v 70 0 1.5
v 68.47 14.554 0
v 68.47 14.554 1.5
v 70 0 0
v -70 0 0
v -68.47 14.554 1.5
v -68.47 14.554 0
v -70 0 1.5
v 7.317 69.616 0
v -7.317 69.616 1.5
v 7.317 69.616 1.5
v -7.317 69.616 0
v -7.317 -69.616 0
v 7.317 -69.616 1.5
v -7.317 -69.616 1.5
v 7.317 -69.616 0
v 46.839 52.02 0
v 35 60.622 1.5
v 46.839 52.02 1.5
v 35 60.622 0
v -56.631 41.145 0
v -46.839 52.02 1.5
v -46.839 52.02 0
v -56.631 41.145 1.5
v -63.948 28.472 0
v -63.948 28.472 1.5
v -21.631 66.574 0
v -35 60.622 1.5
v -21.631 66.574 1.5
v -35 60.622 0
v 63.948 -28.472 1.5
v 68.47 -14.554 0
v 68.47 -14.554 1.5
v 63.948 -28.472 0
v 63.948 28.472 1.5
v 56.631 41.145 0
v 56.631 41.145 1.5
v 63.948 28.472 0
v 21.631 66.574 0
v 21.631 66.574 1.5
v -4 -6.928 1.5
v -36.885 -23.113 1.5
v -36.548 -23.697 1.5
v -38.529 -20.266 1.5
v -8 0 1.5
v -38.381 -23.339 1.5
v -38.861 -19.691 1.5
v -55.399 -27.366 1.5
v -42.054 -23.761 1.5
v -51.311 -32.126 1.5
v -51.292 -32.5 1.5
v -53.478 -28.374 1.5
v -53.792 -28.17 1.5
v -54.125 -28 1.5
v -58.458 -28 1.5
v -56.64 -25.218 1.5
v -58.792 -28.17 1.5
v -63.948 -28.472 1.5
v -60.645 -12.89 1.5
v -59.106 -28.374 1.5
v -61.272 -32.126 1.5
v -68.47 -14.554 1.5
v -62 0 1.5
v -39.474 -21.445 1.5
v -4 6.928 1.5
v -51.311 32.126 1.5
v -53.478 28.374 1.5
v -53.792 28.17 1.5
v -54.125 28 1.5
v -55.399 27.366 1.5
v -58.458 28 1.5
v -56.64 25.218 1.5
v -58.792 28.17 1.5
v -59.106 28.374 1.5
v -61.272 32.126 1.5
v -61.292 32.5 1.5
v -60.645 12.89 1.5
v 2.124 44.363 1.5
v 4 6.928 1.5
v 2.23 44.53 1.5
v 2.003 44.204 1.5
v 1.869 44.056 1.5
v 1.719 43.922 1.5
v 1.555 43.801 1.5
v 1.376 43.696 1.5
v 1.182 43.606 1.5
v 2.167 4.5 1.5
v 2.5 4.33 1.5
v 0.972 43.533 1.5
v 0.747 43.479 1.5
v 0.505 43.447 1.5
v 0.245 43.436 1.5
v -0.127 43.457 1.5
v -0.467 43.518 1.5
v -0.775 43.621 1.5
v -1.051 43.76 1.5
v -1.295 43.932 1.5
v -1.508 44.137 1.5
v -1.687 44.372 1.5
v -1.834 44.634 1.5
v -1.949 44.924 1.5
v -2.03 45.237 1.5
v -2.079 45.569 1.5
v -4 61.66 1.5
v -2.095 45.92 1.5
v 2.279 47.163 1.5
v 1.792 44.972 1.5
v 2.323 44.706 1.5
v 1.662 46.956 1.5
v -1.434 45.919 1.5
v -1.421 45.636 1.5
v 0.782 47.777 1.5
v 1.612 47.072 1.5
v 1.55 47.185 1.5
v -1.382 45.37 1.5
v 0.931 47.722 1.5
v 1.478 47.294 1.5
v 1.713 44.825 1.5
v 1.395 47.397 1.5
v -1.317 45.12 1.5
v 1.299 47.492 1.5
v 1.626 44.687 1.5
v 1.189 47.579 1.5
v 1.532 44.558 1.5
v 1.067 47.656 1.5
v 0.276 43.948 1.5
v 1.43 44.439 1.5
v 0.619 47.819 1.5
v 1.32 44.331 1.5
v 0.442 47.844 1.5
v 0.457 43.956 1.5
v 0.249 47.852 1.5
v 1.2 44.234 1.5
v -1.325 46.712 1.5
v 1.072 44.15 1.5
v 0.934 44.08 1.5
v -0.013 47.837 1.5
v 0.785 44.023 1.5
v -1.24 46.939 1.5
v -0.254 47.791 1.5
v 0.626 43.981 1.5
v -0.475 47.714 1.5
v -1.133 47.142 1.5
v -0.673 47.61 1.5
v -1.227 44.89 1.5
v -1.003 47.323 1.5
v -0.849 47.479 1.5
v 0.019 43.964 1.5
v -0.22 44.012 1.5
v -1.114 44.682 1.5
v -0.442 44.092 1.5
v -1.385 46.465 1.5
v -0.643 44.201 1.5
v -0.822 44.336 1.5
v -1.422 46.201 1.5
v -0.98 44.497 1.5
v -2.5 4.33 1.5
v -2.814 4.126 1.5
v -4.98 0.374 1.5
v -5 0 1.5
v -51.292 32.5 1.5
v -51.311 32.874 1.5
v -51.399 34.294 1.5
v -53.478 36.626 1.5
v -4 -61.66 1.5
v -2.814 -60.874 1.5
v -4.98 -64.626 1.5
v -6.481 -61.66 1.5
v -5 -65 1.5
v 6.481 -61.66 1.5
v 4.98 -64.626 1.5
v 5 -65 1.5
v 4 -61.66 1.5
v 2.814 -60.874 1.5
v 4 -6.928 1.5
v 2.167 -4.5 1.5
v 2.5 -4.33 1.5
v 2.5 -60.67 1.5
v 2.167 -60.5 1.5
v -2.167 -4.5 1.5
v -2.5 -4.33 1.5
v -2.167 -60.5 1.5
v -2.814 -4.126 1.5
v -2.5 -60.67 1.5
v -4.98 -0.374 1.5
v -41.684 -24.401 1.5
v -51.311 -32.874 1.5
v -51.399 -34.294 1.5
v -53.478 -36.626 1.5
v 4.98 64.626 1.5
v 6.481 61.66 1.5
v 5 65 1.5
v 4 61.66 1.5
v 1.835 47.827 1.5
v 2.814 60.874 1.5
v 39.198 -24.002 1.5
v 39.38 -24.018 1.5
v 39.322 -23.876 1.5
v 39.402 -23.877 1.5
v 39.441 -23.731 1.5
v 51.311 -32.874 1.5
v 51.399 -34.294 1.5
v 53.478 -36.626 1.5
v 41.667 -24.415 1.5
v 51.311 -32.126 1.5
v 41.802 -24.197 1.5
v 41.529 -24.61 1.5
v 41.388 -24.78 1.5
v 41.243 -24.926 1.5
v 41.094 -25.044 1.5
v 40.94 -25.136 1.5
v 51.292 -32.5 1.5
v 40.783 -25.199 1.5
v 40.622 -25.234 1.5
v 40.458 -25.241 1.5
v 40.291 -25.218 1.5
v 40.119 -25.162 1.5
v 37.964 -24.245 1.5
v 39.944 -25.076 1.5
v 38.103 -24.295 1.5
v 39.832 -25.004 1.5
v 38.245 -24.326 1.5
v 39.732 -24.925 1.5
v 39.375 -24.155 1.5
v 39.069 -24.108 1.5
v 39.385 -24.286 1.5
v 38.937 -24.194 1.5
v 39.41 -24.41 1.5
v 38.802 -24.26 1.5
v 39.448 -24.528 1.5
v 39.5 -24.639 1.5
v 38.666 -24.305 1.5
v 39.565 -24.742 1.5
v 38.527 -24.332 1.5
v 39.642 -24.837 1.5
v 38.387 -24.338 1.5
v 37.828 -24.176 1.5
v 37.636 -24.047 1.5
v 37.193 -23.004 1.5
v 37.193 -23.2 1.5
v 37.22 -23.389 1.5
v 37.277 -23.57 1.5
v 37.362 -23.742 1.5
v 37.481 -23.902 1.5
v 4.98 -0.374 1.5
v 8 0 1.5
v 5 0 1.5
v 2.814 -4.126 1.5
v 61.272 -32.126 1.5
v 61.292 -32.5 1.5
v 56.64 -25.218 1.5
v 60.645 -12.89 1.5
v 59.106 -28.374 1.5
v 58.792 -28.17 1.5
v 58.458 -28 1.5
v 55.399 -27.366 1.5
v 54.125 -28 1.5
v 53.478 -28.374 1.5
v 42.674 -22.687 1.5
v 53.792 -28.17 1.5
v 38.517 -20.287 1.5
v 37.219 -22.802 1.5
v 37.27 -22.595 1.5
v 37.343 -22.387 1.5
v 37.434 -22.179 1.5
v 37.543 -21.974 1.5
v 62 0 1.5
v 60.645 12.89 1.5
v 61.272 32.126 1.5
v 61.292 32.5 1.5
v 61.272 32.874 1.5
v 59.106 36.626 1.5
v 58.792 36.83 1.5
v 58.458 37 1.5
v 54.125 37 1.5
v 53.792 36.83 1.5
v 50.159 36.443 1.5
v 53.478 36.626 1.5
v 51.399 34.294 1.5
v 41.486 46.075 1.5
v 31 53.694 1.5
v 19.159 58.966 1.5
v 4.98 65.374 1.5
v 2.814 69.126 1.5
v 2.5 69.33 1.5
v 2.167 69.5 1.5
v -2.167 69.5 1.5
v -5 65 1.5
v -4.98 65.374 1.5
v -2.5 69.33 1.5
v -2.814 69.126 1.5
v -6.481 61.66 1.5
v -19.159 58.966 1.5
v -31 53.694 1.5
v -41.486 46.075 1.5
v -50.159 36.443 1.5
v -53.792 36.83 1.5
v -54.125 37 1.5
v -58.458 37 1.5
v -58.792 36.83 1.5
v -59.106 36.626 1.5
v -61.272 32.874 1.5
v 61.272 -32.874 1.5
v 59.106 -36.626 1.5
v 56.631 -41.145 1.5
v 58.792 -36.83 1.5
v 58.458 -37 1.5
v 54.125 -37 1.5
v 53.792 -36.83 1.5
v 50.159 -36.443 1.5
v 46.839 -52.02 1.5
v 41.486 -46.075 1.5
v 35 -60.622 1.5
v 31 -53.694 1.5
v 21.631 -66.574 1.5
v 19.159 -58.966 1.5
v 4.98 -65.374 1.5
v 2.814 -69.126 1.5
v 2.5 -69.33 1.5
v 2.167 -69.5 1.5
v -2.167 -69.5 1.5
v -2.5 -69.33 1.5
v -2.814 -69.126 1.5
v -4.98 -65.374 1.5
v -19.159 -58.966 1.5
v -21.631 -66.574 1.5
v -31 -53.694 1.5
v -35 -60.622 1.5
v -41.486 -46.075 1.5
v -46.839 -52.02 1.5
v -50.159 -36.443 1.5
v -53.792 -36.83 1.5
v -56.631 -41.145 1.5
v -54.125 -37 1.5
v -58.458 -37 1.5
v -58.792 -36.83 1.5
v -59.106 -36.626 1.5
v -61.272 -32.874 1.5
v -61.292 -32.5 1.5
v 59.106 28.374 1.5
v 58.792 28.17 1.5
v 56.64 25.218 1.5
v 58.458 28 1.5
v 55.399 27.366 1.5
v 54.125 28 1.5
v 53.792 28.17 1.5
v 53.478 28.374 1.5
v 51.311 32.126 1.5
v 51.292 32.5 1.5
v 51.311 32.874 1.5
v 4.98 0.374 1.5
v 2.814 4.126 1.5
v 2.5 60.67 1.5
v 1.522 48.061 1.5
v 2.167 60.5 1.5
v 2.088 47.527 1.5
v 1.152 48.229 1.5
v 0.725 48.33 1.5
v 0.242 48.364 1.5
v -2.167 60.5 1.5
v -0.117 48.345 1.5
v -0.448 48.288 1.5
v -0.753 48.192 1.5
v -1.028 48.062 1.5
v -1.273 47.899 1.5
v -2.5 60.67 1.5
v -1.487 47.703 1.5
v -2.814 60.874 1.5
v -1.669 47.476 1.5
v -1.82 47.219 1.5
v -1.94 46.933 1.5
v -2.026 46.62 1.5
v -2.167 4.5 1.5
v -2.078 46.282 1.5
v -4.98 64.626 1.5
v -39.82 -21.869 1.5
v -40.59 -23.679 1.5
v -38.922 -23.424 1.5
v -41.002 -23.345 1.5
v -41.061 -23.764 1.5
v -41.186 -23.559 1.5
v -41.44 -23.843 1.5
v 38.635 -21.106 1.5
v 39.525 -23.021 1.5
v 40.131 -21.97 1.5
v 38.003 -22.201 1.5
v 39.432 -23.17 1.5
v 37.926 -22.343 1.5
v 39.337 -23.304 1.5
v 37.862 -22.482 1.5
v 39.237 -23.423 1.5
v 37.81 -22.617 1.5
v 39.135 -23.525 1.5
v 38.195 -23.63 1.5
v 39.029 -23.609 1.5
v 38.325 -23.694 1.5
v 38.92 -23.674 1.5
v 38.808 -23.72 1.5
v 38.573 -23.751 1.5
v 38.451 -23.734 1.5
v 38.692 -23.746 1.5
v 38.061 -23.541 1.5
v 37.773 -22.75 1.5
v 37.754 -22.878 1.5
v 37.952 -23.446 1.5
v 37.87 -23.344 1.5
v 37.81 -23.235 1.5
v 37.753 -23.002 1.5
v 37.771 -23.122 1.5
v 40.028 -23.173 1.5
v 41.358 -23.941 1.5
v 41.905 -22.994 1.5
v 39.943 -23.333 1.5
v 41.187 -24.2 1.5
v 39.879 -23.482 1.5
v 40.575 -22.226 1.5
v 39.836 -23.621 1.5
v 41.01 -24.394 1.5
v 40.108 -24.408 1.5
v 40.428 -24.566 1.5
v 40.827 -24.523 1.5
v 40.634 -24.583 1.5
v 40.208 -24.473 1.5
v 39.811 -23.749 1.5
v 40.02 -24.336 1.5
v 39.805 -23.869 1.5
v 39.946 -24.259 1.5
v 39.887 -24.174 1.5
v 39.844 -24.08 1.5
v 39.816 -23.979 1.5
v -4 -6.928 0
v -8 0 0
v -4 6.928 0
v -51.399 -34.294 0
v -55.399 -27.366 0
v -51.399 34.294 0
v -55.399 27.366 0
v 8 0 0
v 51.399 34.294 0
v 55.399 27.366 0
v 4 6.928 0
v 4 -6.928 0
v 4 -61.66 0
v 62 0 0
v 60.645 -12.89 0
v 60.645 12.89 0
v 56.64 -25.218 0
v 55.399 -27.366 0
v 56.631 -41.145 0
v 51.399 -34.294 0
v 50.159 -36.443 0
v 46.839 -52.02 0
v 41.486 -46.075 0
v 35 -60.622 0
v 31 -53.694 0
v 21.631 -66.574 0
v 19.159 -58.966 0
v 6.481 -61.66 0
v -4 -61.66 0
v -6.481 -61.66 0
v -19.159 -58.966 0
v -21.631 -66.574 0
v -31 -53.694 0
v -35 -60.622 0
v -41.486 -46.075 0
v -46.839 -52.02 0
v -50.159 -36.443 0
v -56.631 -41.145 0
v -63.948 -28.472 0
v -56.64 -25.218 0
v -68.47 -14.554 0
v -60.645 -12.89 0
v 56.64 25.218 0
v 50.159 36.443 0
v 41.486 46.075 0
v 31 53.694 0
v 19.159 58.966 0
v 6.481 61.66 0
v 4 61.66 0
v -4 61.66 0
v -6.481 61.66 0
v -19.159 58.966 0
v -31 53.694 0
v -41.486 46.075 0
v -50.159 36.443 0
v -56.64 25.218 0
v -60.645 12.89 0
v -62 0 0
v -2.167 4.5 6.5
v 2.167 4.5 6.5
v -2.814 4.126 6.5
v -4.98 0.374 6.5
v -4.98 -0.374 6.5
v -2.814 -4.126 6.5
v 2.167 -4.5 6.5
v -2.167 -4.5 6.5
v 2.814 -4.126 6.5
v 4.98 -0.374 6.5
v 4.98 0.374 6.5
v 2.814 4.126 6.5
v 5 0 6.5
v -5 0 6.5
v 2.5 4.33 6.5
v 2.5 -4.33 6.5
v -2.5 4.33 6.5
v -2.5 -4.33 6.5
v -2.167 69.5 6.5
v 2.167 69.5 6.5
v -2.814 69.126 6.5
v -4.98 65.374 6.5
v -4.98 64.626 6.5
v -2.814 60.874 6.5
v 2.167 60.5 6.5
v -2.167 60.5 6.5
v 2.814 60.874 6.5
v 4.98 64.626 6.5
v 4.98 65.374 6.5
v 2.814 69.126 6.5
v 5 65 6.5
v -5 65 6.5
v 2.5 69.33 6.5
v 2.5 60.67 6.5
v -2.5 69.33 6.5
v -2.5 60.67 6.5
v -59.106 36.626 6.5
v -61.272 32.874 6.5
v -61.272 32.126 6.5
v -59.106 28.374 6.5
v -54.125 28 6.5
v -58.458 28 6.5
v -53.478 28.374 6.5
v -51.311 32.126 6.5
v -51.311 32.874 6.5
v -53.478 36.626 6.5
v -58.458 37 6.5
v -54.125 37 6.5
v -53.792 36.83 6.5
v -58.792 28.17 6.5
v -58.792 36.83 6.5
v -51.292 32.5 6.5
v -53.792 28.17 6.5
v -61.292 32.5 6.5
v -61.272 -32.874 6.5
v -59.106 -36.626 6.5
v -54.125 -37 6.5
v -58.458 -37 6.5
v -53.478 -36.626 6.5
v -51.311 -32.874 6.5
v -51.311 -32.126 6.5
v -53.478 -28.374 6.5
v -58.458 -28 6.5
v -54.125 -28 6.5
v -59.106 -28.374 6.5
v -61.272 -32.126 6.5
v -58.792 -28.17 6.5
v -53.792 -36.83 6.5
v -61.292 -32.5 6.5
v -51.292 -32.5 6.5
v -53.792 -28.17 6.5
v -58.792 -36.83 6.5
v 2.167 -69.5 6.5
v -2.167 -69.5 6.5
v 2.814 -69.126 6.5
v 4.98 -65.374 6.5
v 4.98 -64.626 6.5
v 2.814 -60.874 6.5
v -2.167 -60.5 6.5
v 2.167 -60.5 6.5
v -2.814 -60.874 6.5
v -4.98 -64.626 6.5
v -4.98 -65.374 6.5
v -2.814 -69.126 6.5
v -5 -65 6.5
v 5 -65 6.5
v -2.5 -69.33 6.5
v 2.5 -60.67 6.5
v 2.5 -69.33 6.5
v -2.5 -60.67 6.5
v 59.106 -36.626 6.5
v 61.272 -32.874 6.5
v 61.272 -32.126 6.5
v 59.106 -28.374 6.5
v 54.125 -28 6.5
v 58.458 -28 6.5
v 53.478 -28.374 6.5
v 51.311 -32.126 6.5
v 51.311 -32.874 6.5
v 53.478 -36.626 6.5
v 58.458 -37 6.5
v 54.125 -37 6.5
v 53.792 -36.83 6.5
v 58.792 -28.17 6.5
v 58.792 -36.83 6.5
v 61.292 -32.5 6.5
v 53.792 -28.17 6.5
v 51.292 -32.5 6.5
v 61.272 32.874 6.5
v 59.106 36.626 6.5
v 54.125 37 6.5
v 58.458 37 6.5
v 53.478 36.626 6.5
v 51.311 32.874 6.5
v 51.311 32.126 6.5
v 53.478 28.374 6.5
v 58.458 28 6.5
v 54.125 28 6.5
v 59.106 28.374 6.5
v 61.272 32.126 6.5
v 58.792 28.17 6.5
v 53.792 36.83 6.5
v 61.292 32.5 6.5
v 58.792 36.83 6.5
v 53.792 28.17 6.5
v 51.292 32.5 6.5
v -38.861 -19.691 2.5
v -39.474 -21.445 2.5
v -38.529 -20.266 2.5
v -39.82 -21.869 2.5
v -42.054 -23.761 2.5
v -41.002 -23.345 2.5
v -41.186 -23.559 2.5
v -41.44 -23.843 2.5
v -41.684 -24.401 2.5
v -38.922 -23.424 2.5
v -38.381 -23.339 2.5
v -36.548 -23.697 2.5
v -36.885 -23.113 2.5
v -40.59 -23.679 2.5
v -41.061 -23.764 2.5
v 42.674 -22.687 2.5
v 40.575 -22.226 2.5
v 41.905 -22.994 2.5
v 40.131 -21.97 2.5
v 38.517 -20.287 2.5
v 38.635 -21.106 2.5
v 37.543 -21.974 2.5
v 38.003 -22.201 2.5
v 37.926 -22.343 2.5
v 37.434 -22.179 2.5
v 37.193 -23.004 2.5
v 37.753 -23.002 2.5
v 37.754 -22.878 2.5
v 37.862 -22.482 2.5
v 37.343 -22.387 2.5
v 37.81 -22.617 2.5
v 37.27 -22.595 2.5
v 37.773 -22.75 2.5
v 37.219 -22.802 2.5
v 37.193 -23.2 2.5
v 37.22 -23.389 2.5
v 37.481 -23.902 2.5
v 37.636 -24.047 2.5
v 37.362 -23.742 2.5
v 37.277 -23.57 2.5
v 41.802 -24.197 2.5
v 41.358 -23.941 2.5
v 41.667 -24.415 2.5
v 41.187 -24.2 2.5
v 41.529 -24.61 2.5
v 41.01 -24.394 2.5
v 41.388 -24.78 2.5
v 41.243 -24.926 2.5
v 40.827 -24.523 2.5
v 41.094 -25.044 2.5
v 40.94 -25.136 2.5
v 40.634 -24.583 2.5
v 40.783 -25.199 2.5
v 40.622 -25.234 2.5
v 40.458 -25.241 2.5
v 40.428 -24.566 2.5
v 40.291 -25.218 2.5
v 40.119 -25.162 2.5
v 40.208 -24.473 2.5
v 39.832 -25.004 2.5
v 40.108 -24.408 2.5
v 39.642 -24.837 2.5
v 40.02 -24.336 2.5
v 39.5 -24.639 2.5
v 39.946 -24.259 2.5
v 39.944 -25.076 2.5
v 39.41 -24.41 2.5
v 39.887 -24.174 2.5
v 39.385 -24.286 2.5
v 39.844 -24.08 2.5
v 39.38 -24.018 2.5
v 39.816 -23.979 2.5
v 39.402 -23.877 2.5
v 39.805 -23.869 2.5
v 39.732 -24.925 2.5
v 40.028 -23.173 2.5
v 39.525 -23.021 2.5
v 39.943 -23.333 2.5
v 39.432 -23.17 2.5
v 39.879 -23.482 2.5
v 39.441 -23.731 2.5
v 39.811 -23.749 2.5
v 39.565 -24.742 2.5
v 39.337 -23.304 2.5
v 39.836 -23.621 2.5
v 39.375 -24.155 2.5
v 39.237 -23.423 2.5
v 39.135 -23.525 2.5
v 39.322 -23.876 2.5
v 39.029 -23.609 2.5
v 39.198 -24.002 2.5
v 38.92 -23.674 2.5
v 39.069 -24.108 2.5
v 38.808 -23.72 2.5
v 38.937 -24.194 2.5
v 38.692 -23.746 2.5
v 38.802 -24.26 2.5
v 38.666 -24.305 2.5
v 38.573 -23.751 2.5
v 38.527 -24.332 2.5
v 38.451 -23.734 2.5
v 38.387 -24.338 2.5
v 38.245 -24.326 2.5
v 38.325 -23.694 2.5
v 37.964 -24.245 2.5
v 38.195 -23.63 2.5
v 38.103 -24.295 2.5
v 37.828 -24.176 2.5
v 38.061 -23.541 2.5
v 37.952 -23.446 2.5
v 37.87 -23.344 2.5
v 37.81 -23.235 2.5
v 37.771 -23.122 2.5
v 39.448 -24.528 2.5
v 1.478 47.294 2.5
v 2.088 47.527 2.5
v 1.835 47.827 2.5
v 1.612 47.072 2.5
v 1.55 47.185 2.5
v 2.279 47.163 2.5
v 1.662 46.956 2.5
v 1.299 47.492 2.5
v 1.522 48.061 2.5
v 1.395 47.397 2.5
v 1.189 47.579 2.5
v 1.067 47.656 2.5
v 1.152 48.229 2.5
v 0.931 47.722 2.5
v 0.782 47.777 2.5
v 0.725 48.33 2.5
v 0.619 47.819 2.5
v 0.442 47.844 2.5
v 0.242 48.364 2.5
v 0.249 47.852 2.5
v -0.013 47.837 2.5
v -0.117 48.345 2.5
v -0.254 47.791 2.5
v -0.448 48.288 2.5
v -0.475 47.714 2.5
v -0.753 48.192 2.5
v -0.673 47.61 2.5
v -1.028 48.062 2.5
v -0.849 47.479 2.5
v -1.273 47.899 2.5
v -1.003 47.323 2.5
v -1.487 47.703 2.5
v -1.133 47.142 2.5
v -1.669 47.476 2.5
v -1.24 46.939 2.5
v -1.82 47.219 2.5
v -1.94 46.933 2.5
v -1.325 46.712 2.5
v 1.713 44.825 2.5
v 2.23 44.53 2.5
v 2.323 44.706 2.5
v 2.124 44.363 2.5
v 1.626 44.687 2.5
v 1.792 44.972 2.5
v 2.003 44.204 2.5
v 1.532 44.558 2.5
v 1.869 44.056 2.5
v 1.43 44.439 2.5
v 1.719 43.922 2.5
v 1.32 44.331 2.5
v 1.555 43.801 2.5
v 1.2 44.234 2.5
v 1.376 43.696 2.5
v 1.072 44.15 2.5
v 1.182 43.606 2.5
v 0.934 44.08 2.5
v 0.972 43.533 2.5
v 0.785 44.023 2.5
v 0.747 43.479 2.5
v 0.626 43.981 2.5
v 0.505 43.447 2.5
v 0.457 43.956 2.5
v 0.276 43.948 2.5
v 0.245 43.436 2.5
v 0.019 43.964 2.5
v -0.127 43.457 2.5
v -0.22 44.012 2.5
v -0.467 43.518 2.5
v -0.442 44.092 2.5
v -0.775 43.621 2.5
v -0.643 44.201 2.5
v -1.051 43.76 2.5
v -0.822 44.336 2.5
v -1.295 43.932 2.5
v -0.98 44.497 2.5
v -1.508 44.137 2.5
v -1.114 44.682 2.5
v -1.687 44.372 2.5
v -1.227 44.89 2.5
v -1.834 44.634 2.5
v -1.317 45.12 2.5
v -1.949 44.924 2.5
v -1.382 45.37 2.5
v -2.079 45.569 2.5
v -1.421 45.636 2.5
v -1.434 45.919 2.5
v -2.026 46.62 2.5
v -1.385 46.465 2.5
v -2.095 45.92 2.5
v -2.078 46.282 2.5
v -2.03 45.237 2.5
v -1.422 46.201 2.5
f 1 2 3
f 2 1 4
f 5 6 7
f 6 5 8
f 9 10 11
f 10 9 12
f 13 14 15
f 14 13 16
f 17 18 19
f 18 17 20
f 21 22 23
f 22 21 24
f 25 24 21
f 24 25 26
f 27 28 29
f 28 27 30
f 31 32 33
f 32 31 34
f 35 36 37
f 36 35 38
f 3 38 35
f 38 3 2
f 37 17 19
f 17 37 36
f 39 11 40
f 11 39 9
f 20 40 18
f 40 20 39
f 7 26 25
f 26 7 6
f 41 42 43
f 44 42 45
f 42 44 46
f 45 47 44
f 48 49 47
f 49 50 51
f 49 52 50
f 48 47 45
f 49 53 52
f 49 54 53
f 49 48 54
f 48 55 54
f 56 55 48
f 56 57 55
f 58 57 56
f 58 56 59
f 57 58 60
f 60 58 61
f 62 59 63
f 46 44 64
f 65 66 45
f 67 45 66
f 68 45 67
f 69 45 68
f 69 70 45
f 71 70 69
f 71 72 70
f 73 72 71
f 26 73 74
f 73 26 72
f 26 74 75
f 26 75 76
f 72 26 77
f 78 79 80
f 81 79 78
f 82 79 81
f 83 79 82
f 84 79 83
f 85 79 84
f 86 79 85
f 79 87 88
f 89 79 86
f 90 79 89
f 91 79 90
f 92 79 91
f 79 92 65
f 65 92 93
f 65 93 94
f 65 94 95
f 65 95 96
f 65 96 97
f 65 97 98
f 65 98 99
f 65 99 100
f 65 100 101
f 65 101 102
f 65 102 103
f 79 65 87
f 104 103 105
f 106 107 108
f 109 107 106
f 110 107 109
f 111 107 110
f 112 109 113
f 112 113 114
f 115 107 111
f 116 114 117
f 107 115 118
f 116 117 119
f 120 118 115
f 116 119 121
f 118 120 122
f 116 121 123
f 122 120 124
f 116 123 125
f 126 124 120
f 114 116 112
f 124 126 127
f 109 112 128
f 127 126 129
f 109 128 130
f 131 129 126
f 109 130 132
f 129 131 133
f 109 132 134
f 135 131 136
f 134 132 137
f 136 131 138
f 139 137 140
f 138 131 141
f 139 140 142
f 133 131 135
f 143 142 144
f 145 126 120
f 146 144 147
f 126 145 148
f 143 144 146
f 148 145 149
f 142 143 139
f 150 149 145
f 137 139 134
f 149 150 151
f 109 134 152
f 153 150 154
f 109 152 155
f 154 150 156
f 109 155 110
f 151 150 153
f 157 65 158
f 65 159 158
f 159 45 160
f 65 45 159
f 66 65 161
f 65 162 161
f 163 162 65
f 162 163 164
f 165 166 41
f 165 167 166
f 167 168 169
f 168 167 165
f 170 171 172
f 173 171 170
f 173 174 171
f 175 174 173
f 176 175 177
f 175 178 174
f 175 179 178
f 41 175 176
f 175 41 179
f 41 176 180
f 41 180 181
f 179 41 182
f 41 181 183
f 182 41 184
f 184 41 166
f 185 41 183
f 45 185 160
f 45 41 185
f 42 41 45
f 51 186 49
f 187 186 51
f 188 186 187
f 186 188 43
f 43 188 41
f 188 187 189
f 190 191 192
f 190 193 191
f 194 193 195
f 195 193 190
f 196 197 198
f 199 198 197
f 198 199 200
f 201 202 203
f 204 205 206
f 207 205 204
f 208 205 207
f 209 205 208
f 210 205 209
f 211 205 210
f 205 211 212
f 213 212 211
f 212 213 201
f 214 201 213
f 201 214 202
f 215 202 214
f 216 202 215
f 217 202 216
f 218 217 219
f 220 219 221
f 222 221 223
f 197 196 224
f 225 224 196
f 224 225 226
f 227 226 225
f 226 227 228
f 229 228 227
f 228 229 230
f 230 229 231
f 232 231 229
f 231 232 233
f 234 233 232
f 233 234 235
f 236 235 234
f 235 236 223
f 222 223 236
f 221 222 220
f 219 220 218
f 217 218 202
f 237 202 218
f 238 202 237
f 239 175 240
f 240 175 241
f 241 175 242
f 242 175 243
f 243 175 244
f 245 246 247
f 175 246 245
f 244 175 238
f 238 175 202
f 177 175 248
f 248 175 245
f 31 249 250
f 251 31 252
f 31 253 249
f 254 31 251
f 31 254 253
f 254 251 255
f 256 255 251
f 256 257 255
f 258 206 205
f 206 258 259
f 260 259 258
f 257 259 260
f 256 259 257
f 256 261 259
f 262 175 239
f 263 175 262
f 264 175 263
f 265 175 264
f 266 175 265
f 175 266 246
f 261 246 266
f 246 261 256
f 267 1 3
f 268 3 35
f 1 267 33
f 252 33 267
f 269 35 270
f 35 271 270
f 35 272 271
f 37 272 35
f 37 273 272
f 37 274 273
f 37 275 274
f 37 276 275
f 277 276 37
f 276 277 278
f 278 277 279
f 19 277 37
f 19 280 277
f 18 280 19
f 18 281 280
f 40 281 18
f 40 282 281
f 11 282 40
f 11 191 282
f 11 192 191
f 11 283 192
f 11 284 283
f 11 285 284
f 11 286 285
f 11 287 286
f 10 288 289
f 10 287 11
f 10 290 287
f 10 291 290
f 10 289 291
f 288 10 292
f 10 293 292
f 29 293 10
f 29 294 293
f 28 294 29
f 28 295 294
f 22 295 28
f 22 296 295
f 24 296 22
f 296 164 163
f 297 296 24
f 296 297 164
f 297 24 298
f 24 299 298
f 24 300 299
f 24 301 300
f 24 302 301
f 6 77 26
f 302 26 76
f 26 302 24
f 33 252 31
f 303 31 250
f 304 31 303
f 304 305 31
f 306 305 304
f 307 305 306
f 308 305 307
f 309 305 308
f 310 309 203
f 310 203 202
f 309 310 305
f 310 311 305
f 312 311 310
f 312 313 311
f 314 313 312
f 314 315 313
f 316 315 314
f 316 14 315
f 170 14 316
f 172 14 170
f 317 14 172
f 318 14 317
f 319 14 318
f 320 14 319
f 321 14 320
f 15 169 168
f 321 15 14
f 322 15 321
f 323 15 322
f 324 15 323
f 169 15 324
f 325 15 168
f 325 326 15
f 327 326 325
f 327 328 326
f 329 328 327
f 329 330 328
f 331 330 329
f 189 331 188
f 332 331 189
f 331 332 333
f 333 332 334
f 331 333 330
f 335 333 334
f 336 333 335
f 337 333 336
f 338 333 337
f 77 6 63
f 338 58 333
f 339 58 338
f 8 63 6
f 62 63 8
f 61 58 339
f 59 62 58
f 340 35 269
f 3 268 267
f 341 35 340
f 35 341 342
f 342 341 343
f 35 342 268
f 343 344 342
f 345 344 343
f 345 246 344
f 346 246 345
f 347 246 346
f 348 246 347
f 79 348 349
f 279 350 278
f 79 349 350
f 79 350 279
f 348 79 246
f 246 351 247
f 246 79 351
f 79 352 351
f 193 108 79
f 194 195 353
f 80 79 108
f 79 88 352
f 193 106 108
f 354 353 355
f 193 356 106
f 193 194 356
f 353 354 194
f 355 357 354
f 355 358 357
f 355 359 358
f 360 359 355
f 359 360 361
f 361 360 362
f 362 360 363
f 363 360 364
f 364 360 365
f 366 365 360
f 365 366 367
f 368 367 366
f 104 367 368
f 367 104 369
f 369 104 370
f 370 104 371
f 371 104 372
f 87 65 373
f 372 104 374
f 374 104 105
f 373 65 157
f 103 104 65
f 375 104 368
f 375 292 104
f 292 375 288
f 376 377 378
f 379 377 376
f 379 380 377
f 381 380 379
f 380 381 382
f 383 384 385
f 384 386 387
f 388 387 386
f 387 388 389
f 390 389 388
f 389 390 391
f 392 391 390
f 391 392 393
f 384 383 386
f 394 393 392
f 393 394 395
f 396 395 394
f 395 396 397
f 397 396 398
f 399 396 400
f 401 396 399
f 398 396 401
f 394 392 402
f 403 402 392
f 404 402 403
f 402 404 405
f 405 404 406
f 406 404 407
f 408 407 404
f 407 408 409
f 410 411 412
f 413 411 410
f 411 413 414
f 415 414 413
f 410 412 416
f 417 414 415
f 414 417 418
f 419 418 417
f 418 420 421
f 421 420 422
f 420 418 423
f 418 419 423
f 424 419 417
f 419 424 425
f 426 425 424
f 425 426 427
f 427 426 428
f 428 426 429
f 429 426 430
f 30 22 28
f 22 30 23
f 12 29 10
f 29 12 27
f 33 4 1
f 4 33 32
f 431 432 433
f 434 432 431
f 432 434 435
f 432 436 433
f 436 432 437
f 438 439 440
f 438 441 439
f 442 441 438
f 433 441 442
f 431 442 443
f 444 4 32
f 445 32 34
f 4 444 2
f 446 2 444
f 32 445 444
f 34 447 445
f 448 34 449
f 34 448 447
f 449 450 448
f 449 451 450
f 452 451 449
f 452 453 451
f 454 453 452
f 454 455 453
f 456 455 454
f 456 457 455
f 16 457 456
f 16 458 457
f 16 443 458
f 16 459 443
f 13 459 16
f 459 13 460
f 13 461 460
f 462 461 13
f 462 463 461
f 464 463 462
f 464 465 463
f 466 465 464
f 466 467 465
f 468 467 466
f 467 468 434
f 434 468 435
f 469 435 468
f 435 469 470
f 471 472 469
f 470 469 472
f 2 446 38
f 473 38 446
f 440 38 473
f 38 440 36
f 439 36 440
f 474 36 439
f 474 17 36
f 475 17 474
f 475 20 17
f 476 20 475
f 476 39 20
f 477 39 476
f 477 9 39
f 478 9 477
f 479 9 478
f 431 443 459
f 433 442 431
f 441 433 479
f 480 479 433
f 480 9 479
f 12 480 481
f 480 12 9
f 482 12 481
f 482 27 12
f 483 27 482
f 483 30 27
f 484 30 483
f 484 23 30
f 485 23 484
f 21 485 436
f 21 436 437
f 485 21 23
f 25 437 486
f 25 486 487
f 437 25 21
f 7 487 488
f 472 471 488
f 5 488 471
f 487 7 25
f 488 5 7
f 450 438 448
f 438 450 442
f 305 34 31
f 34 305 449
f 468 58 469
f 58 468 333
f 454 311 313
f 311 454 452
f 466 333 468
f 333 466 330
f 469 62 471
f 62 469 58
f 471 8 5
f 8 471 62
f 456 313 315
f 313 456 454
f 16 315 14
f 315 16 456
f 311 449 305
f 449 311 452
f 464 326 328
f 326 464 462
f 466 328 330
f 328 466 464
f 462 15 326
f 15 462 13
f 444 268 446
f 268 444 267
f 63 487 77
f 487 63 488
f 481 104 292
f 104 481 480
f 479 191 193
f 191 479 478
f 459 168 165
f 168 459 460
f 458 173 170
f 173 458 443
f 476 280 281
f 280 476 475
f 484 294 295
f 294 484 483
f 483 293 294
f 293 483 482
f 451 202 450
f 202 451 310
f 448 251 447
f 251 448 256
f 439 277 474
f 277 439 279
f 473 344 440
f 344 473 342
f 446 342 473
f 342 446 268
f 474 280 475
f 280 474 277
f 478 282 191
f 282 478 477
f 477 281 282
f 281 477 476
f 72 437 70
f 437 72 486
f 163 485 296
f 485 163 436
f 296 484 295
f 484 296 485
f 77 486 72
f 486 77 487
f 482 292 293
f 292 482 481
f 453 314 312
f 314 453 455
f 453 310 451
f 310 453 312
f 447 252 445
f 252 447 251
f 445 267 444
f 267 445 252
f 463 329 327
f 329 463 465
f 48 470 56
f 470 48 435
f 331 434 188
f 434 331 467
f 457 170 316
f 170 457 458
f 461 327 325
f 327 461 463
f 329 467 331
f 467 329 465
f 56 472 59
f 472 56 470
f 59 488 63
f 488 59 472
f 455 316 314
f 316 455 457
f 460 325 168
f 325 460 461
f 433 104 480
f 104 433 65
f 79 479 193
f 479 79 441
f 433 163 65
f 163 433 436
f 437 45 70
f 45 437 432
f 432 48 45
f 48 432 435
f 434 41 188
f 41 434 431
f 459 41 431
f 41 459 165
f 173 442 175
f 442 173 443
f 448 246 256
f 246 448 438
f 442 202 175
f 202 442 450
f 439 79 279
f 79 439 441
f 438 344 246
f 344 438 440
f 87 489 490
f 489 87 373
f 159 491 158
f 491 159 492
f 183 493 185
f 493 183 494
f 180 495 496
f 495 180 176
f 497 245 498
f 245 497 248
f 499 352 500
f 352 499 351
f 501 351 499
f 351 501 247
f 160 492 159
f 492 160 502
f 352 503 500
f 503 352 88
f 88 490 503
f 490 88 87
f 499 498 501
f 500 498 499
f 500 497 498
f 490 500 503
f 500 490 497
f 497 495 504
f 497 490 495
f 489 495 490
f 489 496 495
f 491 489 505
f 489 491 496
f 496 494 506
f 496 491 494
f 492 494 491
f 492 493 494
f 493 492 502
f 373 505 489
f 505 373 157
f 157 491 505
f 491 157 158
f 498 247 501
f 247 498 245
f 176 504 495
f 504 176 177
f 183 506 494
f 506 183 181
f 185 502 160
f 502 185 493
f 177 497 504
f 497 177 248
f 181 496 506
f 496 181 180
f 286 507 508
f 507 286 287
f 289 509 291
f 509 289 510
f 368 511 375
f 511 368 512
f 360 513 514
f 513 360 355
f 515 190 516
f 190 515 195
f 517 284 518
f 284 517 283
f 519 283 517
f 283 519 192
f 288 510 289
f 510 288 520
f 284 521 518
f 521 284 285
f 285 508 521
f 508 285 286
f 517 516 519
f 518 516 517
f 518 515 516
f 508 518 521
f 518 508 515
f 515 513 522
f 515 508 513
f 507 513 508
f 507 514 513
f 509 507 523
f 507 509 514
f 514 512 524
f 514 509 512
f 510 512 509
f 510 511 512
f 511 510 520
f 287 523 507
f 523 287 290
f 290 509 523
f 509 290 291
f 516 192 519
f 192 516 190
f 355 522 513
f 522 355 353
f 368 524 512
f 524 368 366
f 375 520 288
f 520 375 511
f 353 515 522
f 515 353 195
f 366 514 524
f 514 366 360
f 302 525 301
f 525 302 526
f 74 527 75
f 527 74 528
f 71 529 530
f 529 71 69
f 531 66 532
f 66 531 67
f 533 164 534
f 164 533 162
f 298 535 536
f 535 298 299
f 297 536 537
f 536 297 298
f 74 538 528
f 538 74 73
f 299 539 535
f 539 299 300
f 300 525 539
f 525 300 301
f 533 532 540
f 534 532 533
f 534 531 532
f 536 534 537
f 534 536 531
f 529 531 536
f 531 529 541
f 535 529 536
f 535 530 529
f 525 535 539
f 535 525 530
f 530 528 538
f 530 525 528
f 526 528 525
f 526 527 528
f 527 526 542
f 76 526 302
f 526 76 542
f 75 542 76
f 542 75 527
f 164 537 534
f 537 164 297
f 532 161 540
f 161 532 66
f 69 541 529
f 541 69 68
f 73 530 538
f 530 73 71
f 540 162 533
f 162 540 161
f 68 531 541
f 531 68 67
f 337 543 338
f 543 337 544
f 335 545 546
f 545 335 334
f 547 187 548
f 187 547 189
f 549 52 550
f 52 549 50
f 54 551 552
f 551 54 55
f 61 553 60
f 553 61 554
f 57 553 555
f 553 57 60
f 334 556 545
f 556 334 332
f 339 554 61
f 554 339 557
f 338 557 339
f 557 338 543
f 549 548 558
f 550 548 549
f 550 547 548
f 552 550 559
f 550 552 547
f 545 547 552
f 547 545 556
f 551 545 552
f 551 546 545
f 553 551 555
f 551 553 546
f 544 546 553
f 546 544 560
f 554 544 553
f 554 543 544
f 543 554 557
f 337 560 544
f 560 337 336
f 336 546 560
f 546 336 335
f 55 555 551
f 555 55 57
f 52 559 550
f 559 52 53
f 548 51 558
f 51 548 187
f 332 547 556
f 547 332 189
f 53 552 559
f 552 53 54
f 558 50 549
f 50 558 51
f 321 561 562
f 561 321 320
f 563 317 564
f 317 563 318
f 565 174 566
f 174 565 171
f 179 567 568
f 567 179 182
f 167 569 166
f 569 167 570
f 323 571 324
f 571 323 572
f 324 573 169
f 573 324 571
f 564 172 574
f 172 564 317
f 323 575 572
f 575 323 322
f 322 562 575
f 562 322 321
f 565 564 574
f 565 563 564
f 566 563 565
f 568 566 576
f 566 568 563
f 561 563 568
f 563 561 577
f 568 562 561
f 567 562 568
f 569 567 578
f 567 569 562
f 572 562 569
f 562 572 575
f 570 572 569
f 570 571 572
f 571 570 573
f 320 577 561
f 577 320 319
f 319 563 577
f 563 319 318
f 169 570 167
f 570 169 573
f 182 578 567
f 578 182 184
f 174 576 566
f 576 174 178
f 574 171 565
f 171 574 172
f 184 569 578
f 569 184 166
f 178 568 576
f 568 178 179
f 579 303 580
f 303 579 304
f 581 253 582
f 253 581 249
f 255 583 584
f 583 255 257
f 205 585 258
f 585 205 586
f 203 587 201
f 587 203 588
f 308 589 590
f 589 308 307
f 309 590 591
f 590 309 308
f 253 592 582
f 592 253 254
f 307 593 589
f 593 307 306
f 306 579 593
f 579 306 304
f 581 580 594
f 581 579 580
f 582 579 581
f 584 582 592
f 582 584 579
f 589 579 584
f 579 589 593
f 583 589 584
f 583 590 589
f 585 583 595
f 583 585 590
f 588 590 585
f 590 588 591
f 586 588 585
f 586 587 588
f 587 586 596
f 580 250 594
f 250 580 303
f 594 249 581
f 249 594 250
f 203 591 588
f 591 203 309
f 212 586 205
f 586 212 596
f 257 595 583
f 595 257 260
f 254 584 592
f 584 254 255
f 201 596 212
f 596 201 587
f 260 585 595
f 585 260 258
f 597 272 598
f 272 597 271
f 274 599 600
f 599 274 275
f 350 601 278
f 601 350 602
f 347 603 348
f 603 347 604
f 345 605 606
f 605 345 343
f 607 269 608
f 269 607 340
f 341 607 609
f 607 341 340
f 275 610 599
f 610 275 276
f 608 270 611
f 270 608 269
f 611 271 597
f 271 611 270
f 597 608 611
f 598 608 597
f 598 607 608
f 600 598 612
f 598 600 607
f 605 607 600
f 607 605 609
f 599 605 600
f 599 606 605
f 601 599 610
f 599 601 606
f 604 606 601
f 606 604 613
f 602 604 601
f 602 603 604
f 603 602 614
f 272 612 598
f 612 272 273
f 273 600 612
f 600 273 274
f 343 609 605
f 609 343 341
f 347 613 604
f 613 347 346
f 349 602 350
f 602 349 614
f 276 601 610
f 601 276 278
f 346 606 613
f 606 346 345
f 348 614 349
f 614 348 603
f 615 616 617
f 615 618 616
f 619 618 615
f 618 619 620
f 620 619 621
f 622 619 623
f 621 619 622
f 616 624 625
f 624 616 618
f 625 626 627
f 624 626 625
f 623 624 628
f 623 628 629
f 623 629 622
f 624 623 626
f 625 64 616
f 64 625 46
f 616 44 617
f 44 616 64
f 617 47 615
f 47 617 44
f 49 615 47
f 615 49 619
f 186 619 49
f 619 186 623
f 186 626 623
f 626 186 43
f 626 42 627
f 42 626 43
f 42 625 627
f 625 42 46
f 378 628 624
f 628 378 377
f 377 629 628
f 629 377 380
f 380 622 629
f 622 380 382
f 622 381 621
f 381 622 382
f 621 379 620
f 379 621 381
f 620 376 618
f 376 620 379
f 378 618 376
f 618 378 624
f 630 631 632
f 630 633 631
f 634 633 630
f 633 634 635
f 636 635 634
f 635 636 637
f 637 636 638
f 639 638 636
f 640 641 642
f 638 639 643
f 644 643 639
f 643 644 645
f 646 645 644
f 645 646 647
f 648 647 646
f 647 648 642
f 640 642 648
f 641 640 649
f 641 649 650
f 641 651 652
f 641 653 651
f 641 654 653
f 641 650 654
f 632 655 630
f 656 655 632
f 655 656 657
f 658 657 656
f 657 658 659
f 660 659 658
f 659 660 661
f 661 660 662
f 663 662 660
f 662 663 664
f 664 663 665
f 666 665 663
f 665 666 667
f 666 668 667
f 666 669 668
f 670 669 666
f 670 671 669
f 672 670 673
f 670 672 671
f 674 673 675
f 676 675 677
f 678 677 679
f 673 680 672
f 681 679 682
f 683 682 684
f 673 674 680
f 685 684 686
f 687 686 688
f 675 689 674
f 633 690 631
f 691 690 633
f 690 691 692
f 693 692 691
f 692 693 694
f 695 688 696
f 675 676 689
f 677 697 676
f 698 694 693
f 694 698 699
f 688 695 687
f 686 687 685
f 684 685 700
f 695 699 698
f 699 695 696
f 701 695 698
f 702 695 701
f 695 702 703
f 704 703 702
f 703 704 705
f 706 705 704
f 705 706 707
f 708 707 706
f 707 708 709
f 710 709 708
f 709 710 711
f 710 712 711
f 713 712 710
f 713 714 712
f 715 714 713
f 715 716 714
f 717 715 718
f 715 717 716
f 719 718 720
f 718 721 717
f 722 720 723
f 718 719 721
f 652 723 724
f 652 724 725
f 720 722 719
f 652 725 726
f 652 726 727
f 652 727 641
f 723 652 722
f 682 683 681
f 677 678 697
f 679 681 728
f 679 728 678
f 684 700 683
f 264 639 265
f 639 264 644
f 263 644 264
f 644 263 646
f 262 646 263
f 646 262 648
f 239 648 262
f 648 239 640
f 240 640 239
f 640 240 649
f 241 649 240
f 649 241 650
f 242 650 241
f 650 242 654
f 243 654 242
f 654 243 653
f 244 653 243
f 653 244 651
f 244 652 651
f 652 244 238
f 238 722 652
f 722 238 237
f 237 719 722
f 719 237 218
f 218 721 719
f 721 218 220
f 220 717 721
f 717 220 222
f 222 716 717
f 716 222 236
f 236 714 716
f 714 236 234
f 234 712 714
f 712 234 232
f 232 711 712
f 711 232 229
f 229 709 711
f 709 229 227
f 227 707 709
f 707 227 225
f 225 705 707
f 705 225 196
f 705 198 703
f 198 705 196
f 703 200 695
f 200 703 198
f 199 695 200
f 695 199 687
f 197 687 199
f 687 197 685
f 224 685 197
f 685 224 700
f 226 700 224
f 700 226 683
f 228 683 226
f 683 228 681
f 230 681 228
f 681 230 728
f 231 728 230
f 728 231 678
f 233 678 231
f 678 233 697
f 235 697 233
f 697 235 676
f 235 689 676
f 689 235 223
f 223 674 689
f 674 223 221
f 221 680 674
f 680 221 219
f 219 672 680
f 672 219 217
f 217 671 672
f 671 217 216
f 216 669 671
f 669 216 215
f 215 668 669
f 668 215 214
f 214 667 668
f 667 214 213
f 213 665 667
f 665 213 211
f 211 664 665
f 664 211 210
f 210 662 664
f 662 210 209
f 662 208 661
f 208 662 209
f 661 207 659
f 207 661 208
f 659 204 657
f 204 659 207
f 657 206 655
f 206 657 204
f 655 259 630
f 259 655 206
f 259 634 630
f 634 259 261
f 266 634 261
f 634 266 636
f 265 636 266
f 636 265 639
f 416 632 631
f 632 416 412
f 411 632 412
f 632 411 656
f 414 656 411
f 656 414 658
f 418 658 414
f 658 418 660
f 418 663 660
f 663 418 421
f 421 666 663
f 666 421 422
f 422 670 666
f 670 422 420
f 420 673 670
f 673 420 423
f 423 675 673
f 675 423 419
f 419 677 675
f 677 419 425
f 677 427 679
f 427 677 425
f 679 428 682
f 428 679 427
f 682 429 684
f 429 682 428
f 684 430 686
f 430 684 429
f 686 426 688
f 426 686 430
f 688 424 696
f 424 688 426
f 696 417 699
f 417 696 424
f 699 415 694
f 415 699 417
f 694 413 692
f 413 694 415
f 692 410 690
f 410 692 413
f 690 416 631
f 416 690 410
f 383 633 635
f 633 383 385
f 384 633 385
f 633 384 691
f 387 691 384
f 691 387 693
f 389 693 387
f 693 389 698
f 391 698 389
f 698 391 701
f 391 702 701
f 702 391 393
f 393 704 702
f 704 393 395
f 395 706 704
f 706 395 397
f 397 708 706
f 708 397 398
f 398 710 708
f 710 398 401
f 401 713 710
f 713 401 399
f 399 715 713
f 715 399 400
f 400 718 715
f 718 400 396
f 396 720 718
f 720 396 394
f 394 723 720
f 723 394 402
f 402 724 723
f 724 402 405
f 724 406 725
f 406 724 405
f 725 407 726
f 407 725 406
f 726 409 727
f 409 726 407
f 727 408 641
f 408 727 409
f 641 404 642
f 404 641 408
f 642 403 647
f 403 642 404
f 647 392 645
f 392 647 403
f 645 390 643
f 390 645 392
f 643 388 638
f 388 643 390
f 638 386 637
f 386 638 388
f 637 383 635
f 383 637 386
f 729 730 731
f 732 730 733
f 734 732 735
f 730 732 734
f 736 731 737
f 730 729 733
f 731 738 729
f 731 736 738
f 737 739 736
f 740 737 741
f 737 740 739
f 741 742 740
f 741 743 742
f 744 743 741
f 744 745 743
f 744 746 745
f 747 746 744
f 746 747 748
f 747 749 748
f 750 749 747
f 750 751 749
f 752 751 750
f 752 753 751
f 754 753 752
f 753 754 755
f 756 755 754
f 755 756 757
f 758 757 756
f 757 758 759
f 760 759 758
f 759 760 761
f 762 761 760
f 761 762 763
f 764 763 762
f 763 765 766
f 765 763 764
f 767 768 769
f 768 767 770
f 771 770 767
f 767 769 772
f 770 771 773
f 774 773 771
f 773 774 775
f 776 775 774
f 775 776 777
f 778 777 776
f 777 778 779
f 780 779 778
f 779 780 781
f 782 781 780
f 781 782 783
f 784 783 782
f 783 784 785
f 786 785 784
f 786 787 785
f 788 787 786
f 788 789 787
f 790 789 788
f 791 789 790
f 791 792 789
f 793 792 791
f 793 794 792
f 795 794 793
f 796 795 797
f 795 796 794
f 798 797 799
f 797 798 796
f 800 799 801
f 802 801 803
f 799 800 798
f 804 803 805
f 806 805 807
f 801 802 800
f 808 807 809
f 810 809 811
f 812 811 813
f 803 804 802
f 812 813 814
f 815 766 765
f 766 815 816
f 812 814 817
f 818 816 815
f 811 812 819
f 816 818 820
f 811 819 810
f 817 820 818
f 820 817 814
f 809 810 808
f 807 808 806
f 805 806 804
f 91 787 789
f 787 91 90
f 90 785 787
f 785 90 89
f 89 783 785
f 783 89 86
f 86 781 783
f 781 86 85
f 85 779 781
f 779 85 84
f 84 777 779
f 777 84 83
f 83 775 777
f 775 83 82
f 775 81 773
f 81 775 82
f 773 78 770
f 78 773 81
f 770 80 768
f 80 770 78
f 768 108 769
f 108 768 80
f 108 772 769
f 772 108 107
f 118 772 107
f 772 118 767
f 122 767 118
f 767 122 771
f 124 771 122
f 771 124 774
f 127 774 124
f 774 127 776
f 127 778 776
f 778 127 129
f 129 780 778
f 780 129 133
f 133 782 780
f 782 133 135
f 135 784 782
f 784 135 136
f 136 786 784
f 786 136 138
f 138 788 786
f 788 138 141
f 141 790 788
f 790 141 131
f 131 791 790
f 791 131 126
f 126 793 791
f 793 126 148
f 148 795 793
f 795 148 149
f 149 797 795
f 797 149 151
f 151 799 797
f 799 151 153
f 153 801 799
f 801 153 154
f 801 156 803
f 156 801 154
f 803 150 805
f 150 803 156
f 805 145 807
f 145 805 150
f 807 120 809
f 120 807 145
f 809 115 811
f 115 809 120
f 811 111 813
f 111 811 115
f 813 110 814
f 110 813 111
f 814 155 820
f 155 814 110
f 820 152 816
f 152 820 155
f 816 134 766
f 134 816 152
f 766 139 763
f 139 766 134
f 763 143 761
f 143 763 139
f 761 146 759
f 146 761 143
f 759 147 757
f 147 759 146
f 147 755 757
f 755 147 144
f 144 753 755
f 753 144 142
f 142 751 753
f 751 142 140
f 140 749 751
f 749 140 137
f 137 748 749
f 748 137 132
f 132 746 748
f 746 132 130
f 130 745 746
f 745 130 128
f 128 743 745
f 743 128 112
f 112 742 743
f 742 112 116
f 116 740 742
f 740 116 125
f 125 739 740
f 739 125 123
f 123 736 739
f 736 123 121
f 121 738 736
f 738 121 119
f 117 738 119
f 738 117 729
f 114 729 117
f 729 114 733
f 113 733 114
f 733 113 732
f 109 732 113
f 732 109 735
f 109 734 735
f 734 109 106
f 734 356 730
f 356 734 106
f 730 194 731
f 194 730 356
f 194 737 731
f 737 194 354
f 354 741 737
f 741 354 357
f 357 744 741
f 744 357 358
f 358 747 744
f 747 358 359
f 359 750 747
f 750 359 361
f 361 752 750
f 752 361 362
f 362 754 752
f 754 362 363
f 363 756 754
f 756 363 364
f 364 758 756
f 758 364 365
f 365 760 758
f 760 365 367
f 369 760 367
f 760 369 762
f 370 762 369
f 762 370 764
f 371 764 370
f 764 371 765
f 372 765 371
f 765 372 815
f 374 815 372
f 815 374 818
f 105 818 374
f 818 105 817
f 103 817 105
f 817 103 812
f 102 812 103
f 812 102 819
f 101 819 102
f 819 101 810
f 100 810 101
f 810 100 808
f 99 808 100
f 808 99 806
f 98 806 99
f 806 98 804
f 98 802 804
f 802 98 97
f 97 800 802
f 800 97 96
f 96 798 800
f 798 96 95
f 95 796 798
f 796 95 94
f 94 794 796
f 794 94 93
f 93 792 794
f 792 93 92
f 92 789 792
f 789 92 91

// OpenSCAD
// Calibration object for delta sizing
//
// Generate STL using OpenSCAD:
//   openscad calibrate_size.scad -o calibrate_size.stl

base_radius = 70;
base_height = 1.5;
base_width = 8;
cylinder_height = 5;
cylinder_radius = 5;
cylinder_outer_dist = 65;
ridge_cut_radius = .5;
text_height = 1;
text_size = 5;
spoke_angles = [0, 60, 120, 180, 240, 300];
CUT=0.01;

// Circular ring around entire object (to help reduce warping)
module base_ring() {
    difference() {
        cylinder(h=base_height, r=base_radius);
        translate([0, 0, -CUT])
            cylinder(h=base_height + 2*CUT, r=base_radius-base_width);
    }
}

// The base ring plus the base spokes
module base() {
    base_ring();
    // Spokes
    for (angle=spoke_angles)
        rotate([0, 0, angle])
            translate([-base_width/2, -CUT, 0])
                cube([base_width, base_radius-base_width+2*CUT, base_height]);
}

// Cylinder that measurement ridges are cut out of
module measuring_cylinder() {
    cut_width = cylinder_radius;
    difference() {
        cylinder(h=cylinder_height+CUT, r=cylinder_radius, $fn=60);
        for (angle=spoke_angles)
            rotate([0, 0, angle])
                translate([-cut_width, cylinder_radius - ridge_cut_radius, -CUT])
                    cube([2*cut_width, cut_width, cylinder_height+3*CUT]);
    }
}

// All the measuring cylinders around the ring
module measuring_cylinders() {
    measuring_cylinder();
    for (angle=spoke_angles)
        rotate([0, 0, angle])
            translate([0, cylinder_outer_dist, 0])
                measuring_cylinder();
}

// Text writing
module write_text(angle, dist, msg) {
    text_offset = dist + 1 - text_size/2;
    rotate([0, 0, angle])
        translate([0, text_offset, base_height - CUT])
            linear_extrude(height=text_height + CUT)
                text(msg, size=text_size, halign="center");
}

// Final object with text descriptions
module calibration_object() {
    base();
    translate([0, 0, base_height-CUT])
        measuring_cylinders();
    write_text(120, cylinder_outer_dist - 20, "A");
    write_text(240, cylinder_outer_dist - 20, "B");
    write_text(0, cylinder_outer_dist - 20, "C");
}

calibration_object();
